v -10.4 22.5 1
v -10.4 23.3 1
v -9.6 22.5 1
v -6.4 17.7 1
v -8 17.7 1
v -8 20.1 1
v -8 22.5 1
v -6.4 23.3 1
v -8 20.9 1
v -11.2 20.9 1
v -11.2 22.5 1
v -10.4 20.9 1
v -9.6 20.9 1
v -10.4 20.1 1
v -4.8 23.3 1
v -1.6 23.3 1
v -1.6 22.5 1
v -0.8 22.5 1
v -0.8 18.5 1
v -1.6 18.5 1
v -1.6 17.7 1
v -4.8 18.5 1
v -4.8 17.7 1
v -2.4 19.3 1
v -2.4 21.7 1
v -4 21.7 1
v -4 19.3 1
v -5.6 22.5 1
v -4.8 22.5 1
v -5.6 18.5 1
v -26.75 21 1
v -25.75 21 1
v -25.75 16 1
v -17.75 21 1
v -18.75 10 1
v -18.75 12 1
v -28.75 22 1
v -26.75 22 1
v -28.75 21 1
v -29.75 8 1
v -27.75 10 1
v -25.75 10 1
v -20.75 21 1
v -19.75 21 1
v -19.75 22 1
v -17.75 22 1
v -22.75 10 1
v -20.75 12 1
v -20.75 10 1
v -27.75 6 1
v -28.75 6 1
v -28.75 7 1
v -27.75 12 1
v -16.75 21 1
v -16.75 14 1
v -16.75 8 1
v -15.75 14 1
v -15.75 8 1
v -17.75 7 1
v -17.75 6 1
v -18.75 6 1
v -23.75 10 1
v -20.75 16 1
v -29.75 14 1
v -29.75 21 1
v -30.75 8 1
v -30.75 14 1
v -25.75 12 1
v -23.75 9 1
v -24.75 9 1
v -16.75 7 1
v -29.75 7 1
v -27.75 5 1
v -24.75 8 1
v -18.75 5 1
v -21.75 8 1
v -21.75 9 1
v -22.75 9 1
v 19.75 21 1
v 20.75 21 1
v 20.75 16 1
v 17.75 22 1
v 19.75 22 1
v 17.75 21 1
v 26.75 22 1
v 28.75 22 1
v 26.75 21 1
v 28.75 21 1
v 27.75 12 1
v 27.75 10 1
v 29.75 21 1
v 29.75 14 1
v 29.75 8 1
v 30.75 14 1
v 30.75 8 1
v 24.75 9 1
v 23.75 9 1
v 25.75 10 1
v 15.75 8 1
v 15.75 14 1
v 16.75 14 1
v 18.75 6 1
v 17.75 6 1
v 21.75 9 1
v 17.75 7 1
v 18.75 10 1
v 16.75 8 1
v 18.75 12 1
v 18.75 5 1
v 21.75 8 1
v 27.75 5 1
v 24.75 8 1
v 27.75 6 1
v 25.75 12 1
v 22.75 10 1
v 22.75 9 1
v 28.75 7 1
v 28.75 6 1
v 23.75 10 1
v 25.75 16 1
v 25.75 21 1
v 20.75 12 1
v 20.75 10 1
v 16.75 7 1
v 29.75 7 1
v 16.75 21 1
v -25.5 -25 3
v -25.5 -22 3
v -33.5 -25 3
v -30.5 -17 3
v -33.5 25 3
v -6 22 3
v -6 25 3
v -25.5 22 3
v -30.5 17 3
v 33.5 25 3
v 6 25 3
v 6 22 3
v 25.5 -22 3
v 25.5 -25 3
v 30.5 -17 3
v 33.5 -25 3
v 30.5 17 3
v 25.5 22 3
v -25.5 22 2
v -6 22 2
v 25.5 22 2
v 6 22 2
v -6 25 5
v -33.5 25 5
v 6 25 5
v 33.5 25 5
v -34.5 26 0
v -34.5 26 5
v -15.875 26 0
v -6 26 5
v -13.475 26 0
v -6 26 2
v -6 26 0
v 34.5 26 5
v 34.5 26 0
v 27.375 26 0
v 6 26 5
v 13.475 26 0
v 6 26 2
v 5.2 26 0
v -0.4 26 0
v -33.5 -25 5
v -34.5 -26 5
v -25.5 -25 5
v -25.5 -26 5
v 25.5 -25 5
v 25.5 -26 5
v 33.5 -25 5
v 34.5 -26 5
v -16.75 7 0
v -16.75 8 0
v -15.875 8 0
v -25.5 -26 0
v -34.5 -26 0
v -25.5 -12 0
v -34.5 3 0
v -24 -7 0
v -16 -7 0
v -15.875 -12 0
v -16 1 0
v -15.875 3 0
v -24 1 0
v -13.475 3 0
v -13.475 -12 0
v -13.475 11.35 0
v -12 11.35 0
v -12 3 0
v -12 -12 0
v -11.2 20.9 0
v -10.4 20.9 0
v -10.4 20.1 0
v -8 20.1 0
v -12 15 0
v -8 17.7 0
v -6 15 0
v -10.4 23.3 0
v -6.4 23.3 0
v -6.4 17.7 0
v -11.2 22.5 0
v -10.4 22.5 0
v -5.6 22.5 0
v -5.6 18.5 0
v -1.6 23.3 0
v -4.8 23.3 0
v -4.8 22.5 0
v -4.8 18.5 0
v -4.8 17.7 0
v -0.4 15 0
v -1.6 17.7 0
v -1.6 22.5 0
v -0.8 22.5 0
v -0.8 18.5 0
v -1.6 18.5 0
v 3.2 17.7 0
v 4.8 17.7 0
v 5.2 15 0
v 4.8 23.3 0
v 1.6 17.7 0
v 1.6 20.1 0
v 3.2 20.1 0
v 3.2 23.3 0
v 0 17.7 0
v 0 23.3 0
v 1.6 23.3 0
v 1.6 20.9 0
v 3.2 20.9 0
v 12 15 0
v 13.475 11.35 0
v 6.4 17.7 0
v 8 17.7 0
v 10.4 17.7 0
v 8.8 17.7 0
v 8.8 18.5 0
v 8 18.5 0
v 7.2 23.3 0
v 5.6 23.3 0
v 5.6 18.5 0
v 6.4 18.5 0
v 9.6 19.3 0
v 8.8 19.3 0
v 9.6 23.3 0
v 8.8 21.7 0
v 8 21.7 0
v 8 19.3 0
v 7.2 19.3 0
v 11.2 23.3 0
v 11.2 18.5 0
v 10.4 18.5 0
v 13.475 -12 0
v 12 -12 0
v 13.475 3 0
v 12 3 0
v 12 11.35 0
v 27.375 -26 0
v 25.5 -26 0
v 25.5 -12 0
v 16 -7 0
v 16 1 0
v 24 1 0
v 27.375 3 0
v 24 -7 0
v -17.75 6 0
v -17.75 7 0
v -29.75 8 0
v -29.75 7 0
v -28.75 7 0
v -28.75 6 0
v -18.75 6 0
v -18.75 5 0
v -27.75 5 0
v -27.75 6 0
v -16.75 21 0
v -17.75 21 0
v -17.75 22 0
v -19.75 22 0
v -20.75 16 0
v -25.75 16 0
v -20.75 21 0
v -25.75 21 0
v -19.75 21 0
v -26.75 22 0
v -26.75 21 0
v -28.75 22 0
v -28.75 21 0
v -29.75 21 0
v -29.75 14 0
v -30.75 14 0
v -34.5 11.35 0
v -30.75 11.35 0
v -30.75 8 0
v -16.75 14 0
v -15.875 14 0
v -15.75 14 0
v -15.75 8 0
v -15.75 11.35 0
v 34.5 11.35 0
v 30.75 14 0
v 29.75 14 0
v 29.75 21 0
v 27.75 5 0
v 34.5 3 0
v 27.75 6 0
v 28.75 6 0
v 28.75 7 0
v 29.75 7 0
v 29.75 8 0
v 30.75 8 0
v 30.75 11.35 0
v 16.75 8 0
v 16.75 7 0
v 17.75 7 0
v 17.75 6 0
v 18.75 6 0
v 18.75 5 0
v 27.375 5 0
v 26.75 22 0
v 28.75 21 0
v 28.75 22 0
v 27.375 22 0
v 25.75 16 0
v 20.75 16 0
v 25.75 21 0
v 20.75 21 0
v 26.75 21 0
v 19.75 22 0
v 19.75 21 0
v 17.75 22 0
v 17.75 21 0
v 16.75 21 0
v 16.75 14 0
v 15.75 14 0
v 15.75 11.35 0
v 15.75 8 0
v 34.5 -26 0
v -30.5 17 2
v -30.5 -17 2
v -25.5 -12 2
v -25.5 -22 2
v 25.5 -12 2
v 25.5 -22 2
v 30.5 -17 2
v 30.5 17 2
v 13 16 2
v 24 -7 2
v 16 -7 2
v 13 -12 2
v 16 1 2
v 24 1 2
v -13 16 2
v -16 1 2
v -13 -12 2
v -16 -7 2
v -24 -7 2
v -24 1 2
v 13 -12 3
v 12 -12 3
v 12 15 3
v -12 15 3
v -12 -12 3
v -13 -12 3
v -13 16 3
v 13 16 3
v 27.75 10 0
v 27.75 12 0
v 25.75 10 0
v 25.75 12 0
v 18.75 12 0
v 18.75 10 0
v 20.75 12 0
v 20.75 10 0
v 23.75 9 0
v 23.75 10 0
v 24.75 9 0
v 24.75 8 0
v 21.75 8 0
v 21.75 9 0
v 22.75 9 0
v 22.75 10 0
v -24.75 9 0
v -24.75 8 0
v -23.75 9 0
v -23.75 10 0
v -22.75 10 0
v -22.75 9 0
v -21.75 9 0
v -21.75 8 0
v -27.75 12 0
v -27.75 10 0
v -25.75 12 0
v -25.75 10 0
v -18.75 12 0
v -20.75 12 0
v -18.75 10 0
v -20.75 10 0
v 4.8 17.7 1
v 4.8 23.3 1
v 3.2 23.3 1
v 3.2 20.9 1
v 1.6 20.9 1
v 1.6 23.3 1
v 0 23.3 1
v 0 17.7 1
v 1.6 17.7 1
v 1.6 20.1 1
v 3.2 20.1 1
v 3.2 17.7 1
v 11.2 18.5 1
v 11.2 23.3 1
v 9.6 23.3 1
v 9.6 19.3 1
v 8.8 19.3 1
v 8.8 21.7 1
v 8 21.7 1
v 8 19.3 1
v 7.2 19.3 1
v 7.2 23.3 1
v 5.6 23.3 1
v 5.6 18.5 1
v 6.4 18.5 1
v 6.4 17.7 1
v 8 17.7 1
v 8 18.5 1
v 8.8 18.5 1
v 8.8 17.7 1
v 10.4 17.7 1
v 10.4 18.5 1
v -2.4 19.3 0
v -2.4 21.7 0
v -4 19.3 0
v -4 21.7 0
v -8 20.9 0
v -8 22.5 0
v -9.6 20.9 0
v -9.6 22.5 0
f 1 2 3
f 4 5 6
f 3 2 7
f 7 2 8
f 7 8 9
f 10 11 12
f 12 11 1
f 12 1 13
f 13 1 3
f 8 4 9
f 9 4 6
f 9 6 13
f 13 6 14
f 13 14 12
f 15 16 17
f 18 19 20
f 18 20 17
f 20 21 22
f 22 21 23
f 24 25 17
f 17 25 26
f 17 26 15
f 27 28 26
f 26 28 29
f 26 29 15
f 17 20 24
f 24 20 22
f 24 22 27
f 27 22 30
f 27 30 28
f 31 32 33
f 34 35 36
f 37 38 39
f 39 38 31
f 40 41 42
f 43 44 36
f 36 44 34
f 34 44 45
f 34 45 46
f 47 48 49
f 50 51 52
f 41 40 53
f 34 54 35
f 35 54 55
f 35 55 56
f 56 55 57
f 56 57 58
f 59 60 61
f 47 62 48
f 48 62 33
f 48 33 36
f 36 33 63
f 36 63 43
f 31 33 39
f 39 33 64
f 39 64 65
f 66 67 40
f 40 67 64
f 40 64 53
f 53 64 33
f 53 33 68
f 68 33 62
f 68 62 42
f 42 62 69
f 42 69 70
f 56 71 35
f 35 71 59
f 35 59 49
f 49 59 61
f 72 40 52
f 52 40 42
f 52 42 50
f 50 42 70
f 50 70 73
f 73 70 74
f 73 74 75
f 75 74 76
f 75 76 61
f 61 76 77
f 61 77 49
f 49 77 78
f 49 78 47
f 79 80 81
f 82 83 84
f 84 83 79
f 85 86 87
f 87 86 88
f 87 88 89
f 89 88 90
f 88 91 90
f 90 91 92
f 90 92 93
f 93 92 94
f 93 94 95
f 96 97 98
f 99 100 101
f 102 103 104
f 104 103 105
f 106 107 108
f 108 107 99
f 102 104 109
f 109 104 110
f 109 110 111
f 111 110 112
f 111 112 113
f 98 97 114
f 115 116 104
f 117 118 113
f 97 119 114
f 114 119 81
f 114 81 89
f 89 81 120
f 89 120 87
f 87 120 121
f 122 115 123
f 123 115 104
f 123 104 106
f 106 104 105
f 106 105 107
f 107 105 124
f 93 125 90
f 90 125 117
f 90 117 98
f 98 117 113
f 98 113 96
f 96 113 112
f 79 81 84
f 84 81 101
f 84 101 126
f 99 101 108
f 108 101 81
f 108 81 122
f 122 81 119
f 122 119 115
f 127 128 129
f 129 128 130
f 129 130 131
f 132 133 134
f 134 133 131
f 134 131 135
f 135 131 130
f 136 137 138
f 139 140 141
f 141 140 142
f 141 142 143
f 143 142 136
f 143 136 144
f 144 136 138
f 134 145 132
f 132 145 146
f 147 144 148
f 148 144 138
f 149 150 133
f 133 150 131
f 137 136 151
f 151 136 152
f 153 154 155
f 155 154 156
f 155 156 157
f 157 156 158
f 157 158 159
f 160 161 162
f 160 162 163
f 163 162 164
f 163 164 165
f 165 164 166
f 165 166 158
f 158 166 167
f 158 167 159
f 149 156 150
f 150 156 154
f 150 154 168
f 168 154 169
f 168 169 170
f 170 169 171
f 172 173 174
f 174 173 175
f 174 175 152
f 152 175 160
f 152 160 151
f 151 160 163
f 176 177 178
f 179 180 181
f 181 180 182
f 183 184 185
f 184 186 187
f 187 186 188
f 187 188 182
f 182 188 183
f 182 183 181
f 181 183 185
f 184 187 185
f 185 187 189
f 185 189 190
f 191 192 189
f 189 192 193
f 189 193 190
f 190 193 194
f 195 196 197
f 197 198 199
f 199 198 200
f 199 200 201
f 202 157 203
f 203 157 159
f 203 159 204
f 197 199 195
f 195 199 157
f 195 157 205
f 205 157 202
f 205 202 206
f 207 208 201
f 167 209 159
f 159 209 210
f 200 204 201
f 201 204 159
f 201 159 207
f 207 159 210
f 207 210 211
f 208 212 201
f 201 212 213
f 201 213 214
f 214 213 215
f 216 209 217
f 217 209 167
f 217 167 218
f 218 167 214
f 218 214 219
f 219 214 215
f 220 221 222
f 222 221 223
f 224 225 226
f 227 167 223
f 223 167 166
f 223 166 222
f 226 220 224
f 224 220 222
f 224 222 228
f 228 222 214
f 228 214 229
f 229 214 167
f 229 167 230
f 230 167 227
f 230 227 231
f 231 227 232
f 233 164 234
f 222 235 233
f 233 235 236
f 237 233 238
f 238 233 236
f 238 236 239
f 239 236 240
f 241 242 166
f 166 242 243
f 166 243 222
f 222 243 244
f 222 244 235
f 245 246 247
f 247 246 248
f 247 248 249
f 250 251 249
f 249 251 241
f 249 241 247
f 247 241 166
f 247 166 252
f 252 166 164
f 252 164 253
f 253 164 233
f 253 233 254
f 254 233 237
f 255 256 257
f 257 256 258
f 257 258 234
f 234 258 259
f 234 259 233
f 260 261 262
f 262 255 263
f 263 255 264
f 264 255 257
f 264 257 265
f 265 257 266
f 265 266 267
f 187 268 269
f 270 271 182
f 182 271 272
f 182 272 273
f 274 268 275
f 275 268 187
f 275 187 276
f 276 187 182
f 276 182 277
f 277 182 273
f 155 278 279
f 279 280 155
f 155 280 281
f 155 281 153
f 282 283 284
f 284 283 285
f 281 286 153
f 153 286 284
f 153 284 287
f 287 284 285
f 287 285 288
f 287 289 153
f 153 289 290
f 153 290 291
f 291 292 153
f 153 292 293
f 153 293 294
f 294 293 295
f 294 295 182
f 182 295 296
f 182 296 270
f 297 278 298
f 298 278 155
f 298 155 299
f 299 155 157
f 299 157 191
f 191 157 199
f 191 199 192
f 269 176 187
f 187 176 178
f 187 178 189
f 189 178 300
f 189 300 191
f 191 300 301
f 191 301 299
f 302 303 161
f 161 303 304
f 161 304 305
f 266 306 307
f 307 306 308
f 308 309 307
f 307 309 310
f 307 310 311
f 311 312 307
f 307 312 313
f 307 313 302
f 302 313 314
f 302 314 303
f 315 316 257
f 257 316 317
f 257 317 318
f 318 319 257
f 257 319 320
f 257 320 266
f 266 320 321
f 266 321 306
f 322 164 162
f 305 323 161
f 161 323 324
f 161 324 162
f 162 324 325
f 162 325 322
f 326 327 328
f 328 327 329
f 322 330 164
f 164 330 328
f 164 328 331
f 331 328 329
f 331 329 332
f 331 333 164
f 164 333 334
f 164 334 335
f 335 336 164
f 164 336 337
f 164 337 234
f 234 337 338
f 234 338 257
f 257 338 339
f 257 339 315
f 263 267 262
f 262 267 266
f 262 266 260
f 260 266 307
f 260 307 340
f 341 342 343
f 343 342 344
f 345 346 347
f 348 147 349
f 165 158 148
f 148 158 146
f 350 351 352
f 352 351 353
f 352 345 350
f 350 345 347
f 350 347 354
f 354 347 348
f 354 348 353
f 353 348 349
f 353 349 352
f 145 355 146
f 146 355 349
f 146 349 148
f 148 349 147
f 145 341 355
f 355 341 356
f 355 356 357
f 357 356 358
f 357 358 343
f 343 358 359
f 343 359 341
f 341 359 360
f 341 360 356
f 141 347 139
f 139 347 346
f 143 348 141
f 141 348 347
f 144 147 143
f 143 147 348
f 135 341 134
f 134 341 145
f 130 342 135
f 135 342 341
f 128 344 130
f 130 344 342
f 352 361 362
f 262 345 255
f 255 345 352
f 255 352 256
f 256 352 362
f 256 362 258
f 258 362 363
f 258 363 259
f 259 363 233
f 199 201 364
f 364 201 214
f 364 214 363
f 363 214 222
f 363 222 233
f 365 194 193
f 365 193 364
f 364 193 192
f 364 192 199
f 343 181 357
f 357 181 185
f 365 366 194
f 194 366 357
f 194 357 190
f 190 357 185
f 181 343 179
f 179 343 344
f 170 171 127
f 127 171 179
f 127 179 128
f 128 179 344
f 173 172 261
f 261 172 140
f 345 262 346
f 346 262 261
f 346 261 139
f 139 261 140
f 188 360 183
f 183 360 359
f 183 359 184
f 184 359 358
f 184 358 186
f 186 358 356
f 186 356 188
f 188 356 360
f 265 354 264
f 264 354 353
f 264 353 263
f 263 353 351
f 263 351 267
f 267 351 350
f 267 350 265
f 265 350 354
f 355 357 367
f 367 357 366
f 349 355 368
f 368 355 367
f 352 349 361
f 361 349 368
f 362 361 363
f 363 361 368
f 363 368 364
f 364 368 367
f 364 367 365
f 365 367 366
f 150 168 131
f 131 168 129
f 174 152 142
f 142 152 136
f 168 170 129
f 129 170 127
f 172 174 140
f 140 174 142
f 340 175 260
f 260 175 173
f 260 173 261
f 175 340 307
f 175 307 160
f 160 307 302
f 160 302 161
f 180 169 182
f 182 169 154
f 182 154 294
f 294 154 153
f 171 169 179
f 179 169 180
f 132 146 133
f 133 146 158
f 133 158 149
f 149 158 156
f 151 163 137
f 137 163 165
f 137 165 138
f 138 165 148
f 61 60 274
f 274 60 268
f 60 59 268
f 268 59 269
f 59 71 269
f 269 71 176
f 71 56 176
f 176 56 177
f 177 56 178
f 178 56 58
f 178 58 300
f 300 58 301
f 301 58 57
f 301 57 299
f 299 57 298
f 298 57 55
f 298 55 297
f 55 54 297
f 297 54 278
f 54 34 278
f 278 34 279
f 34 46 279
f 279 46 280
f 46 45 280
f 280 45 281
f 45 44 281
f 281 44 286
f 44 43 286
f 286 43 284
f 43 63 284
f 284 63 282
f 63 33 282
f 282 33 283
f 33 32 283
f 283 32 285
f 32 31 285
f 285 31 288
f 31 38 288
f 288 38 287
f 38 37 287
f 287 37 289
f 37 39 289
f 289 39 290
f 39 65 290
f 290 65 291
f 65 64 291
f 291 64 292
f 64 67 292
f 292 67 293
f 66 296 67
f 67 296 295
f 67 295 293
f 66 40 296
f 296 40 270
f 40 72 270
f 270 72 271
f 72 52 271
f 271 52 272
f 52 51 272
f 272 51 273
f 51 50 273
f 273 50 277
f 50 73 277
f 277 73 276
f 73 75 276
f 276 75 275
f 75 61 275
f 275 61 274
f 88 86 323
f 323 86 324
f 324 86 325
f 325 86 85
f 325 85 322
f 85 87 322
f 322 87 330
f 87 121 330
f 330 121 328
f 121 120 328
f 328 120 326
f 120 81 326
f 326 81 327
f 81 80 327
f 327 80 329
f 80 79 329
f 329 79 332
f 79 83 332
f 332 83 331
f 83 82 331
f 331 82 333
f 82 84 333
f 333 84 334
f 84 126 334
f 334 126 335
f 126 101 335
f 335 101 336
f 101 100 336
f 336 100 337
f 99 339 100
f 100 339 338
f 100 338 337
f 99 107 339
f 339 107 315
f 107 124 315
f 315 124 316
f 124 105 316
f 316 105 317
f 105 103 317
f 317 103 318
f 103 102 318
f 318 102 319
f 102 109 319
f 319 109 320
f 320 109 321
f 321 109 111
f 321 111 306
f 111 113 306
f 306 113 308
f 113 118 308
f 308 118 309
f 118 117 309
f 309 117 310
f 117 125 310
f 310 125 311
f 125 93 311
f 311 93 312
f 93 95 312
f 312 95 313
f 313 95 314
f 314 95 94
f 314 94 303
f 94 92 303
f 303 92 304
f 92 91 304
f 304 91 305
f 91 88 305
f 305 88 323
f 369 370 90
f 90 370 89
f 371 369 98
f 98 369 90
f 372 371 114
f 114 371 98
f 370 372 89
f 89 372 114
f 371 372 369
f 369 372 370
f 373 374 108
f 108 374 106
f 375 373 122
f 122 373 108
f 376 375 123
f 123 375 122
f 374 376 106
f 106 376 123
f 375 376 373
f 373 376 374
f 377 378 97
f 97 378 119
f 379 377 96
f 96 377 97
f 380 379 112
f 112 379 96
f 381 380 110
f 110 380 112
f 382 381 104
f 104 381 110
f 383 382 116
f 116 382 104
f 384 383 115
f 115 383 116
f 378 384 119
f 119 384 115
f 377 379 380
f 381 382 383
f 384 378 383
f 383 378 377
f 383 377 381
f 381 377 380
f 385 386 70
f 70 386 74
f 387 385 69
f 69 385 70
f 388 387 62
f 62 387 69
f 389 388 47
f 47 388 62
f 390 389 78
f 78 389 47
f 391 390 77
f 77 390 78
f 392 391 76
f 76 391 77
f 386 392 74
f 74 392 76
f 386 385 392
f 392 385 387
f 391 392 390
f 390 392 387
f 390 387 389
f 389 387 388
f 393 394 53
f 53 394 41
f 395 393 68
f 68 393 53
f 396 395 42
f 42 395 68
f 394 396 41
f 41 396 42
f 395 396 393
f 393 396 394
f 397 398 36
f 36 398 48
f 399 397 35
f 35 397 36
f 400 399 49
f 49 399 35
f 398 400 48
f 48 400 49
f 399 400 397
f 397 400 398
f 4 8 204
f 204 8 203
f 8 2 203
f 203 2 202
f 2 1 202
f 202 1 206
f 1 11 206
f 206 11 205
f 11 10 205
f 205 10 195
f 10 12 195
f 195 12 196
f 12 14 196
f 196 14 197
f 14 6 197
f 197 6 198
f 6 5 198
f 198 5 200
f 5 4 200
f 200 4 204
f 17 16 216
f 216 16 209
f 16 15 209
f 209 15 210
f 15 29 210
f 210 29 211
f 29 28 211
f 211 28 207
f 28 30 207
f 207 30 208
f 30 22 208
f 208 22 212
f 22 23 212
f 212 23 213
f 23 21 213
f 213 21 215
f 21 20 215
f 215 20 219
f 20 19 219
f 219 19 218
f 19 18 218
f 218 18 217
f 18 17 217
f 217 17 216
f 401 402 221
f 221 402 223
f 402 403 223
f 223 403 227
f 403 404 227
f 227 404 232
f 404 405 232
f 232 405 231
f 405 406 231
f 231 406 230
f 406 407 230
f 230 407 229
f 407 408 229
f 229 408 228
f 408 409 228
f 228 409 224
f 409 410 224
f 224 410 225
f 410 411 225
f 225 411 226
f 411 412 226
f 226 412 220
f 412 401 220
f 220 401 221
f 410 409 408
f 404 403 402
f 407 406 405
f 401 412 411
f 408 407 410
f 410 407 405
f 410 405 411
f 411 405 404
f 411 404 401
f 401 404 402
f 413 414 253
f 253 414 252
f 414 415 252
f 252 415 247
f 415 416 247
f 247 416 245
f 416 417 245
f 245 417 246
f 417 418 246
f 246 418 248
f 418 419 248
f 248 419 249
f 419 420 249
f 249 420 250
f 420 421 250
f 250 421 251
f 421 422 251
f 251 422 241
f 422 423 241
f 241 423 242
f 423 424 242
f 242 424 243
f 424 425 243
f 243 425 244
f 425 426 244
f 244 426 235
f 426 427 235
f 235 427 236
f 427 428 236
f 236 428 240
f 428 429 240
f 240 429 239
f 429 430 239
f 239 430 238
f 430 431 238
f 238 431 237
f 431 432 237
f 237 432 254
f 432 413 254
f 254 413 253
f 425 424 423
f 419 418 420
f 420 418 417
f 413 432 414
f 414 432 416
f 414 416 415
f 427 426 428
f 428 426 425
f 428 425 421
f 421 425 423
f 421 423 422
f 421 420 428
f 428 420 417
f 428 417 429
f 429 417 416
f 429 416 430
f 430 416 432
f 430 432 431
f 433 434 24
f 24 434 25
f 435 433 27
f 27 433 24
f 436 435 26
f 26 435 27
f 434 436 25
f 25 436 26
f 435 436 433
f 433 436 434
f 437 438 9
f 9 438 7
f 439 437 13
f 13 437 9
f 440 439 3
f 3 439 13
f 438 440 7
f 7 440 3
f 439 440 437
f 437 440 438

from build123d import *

# Parameters (mm, degrees)
SKICA1_W                    = 67
SKICA1_H                    = 50
P_IDAT_VYSUNUT_M1_DEPTH     = 3
ODEBRAT_VYSUNUT_M1_DEPTH    = 1
SKICA3_W                    = 8
SKICA3_H                    = 8
ODEBRAT_VYSUNUT_M2_DEPTH    = 4
VYSUNOUT_TENKOST_NN_1_DEPTH = 1
VYSUNOUT_TENKOST_NN_2_DEPTH = 5
SKICA6_W                    = 12
SKICA6_H                    = 4
ODEBRAT_VYSUNUT_M3_DEPTH    = 4
ODEBRAT_VYSUNUT_M4_DEPTH    = 1
P_IDAT_START                = -1
SKICA8_W                    = 2
SKICA8_H                    = 2
P_IDAT_VYSUNUT_M2_DEPTH     = 1
ODEBRAT_VYSUNUT_M5_DEPTH    = 1
SKICA10_W                   = 1.6
SKICA10_H                   = 2.4
SKICA10_H_2                 = 1.6
P_IDAT_VYSUNUT_M3_DEPTH     = 1


with BuildPart() as part:
    # Skica1 → Přidat vysunutím1 (new body)
    with BuildSketch(Plane.XY):
        Rectangle(SKICA1_W, SKICA1_H)
    extrude(amount=P_IDAT_VYSUNUT_M1_DEPTH)

    # Skica2 → Odebrat vysunutím1 (cut)
    with BuildSketch(Plane.XY.offset(3)):
        Polygon((-25.5, -22), (-30.5, -17), (-30.5, 17), (-25.5, 22), (25.5, 22), (30.5, 17), (30.5, -17), (25.5, -22), align=None)
    extrude(amount=-ODEBRAT_VYSUNUT_M1_DEPTH, mode=Mode.SUBTRACT)

    # Skica3 → Odebrat vysunutím2 (cut, through all)
    with BuildSketch(Plane(origin=(0, 0, 0), x_dir=(-1, 0, 0), z_dir=(0, 0, -1))):
        with Locations((20, -3)):
            Rectangle(SKICA3_W, SKICA3_H)
        with Locations((-20, -3)):
            Rectangle(SKICA3_W, SKICA3_H)
        Polygon((25.5, -25), (-25.5, -25), (-25.5, -12), (-12, -12), (-12, 15), (12, 15), (12, -12), (25.5, -12), align=None)
    extrude(amount=-ODEBRAT_VYSUNUT_M2_DEPTH, mode=Mode.SUBTRACT)

    # Skica4 → Vysunout tenkostěnný1 (add)
    with BuildSketch(Plane.XY.offset(2)):
        Polygon((-12, -12), (-12, 15), (12, 15), (12, -12), (13, -12), (13, 16), (-13, 16), (-13, -12), align=None)
    extrude(amount=VYSUNOUT_TENKOST_NN_1_DEPTH)

    # Skica5 → Vysunout tenkostěnný2 (add)
    with BuildSketch(Plane(origin=(0, 0, 0), x_dir=(-1, 0, 0), z_dir=(0, 0, -1))):
        Polygon((-25.5, -25), (-33.5, -25), (-33.5, 25), (33.5, 25), (33.5, -25), (25.5, -25), (25.5, -26), (34.5, -26), (34.5, 26), (-34.5, 26), (-34.5, -26), (-25.5, -26), align=None)
    extrude(amount=-VYSUNOUT_TENKOST_NN_2_DEPTH)

    # Skica6 → Odebrat vysunutím3 (cut, through all)
    with BuildSketch(Plane.XY.offset(2)):
        with Locations((0, 24)):
            Rectangle(SKICA6_W, SKICA6_H)
    extrude(amount=ODEBRAT_VYSUNUT_M3_DEPTH, mode=Mode.SUBTRACT)

    # Skica7 → Odebrat vysunutím4 (cut)
    with BuildSketch(Plane(origin=(0, 0, 0), x_dir=(-1, 0, 0), z_dir=(0, 0, -1))):
        Polygon((-28.75, 22), (-26.75, 22), (-26.75, 21), (-25.75, 21), (-25.75, 16), (-20.75, 16), (-20.75, 21), (-19.75, 21), (-19.75, 22), (-17.75, 22), (-17.75, 21), (-16.75, 21), (-16.75, 14), (-15.75, 14), (-15.75, 8), (-16.75, 8), (-16.75, 7), (-17.75, 7), (-17.75, 6), (-18.75, 6), (-18.75, 5), (-27.75, 5), (-27.75, 6), (-28.75, 6), (-28.75, 7), (-29.75, 7), (-29.75, 8), (-30.75, 8), (-30.75, 14), (-29.75, 14), (-29.75, 21), (-28.75, 21), align=None)
        Polygon((18.75, 6), (18.75, 5), (27.75, 5), (27.75, 6), (28.75, 6), (28.75, 7), (29.75, 7), (29.75, 8), (30.75, 8), (30.75, 14), (29.75, 14), (29.75, 21), (28.75, 21), (28.75, 22), (26.75, 22), (26.75, 21), (25.75, 21), (25.75, 16), (20.75, 16), (20.75, 21), (19.75, 21), (19.75, 22), (17.75, 22), (17.75, 21), (16.75, 21), (16.75, 14), (15.75, 14), (15.75, 8), (16.75, 8), (16.75, 7), (17.75, 7), (17.75, 6), align=None)
    extrude(amount=-ODEBRAT_VYSUNUT_M4_DEPTH, mode=Mode.SUBTRACT)

    # Skica8 → Přidat vysunutím2 (add)
    with BuildSketch(Plane(origin=(0, 0, 0), x_dir=(-1, 0, 0), z_dir=(0, 0, -1)).offset(P_IDAT_START)):
        with Locations((-26.75, 11)):
            Rectangle(SKICA8_W, SKICA8_H)
        with Locations((-19.75, 11)):
            Rectangle(SKICA8_W, SKICA8_H)
        Polygon((-23.75, 10), (-22.75, 10), (-22.75, 9), (-21.75, 9), (-21.75, 8), (-24.75, 8), (-24.75, 9), (-23.75, 9), align=None)
        Polygon((24.75, 9), (23.75, 9), (23.75, 10), (22.75, 10), (22.75, 9), (21.75, 9), (21.75, 8), (24.75, 8), align=None)
        with Locations((26.75, 11)):
            Rectangle(SKICA8_W, SKICA8_H)
        with Locations((19.75, 11)):
            Rectangle(SKICA8_W, SKICA8_H)
    extrude(amount=P_IDAT_VYSUNUT_M2_DEPTH)

    # Skica9 → Odebrat vysunutím5 (cut)
    with BuildSketch(Plane(origin=(0, 0, 0), x_dir=(-1, 0, 0), z_dir=(0, 0, -1))):
        Polygon((-11.2, 23.3), (-9.6, 23.3), (-9.6, 19.3), (-8.8, 19.3), (-8.8, 21.7), (-8, 21.7), (-8, 19.3), (-7.2, 19.3), (-7.2, 23.3), (-5.6, 23.3), (-5.6, 18.5), (-6.4, 18.5), (-6.4, 17.7), (-8, 17.7), (-8, 18.5), (-8.8, 18.5), (-8.8, 17.7), (-10.4, 17.7), (-10.4, 18.5), (-11.2, 18.5), align=None)
        Polygon((-4.8, 23.3), (-3.2, 23.3), (-3.2, 20.9), (-1.6, 20.9), (-1.6, 23.3), (0, 23.3), (0, 17.7), (-1.6, 17.7), (-1.6, 20.1), (-3.2, 20.1), (-3.2, 17.7), (-4.8, 17.7), align=None)
        Polygon((1.6, 23.3), (4.8, 23.3), (4.8, 22.5), (5.6, 22.5), (5.6, 18.5), (4.8, 18.5), (4.8, 17.7), (1.6, 17.7), (1.6, 18.5), (0.8, 18.5), (0.8, 22.5), (1.6, 22.5), align=None)
        Polygon((6.4, 23.3), (10.4, 23.3), (10.4, 22.5), (11.2, 22.5), (11.2, 20.9), (10.4, 20.9), (10.4, 20.1), (8, 20.1), (8, 17.7), (6.4, 17.7), align=None)
    extrude(amount=-ODEBRAT_VYSUNUT_M5_DEPTH, mode=Mode.SUBTRACT)

    # Skica10 → Přidat vysunutím3 (add)
    with BuildSketch(Plane(origin=(0, 0, 0), x_dir=(-1, 0, 0), z_dir=(0, 0, -1)).offset(P_IDAT_START)):
        with Locations((3.2, 20.5)):
            Rectangle(SKICA10_W, SKICA10_H)
        with Locations((8.8, 21.7)):
            Rectangle(SKICA10_W, SKICA10_H_2)
    extrude(amount=P_IDAT_VYSUNUT_M3_DEPTH)


solid = part.part
